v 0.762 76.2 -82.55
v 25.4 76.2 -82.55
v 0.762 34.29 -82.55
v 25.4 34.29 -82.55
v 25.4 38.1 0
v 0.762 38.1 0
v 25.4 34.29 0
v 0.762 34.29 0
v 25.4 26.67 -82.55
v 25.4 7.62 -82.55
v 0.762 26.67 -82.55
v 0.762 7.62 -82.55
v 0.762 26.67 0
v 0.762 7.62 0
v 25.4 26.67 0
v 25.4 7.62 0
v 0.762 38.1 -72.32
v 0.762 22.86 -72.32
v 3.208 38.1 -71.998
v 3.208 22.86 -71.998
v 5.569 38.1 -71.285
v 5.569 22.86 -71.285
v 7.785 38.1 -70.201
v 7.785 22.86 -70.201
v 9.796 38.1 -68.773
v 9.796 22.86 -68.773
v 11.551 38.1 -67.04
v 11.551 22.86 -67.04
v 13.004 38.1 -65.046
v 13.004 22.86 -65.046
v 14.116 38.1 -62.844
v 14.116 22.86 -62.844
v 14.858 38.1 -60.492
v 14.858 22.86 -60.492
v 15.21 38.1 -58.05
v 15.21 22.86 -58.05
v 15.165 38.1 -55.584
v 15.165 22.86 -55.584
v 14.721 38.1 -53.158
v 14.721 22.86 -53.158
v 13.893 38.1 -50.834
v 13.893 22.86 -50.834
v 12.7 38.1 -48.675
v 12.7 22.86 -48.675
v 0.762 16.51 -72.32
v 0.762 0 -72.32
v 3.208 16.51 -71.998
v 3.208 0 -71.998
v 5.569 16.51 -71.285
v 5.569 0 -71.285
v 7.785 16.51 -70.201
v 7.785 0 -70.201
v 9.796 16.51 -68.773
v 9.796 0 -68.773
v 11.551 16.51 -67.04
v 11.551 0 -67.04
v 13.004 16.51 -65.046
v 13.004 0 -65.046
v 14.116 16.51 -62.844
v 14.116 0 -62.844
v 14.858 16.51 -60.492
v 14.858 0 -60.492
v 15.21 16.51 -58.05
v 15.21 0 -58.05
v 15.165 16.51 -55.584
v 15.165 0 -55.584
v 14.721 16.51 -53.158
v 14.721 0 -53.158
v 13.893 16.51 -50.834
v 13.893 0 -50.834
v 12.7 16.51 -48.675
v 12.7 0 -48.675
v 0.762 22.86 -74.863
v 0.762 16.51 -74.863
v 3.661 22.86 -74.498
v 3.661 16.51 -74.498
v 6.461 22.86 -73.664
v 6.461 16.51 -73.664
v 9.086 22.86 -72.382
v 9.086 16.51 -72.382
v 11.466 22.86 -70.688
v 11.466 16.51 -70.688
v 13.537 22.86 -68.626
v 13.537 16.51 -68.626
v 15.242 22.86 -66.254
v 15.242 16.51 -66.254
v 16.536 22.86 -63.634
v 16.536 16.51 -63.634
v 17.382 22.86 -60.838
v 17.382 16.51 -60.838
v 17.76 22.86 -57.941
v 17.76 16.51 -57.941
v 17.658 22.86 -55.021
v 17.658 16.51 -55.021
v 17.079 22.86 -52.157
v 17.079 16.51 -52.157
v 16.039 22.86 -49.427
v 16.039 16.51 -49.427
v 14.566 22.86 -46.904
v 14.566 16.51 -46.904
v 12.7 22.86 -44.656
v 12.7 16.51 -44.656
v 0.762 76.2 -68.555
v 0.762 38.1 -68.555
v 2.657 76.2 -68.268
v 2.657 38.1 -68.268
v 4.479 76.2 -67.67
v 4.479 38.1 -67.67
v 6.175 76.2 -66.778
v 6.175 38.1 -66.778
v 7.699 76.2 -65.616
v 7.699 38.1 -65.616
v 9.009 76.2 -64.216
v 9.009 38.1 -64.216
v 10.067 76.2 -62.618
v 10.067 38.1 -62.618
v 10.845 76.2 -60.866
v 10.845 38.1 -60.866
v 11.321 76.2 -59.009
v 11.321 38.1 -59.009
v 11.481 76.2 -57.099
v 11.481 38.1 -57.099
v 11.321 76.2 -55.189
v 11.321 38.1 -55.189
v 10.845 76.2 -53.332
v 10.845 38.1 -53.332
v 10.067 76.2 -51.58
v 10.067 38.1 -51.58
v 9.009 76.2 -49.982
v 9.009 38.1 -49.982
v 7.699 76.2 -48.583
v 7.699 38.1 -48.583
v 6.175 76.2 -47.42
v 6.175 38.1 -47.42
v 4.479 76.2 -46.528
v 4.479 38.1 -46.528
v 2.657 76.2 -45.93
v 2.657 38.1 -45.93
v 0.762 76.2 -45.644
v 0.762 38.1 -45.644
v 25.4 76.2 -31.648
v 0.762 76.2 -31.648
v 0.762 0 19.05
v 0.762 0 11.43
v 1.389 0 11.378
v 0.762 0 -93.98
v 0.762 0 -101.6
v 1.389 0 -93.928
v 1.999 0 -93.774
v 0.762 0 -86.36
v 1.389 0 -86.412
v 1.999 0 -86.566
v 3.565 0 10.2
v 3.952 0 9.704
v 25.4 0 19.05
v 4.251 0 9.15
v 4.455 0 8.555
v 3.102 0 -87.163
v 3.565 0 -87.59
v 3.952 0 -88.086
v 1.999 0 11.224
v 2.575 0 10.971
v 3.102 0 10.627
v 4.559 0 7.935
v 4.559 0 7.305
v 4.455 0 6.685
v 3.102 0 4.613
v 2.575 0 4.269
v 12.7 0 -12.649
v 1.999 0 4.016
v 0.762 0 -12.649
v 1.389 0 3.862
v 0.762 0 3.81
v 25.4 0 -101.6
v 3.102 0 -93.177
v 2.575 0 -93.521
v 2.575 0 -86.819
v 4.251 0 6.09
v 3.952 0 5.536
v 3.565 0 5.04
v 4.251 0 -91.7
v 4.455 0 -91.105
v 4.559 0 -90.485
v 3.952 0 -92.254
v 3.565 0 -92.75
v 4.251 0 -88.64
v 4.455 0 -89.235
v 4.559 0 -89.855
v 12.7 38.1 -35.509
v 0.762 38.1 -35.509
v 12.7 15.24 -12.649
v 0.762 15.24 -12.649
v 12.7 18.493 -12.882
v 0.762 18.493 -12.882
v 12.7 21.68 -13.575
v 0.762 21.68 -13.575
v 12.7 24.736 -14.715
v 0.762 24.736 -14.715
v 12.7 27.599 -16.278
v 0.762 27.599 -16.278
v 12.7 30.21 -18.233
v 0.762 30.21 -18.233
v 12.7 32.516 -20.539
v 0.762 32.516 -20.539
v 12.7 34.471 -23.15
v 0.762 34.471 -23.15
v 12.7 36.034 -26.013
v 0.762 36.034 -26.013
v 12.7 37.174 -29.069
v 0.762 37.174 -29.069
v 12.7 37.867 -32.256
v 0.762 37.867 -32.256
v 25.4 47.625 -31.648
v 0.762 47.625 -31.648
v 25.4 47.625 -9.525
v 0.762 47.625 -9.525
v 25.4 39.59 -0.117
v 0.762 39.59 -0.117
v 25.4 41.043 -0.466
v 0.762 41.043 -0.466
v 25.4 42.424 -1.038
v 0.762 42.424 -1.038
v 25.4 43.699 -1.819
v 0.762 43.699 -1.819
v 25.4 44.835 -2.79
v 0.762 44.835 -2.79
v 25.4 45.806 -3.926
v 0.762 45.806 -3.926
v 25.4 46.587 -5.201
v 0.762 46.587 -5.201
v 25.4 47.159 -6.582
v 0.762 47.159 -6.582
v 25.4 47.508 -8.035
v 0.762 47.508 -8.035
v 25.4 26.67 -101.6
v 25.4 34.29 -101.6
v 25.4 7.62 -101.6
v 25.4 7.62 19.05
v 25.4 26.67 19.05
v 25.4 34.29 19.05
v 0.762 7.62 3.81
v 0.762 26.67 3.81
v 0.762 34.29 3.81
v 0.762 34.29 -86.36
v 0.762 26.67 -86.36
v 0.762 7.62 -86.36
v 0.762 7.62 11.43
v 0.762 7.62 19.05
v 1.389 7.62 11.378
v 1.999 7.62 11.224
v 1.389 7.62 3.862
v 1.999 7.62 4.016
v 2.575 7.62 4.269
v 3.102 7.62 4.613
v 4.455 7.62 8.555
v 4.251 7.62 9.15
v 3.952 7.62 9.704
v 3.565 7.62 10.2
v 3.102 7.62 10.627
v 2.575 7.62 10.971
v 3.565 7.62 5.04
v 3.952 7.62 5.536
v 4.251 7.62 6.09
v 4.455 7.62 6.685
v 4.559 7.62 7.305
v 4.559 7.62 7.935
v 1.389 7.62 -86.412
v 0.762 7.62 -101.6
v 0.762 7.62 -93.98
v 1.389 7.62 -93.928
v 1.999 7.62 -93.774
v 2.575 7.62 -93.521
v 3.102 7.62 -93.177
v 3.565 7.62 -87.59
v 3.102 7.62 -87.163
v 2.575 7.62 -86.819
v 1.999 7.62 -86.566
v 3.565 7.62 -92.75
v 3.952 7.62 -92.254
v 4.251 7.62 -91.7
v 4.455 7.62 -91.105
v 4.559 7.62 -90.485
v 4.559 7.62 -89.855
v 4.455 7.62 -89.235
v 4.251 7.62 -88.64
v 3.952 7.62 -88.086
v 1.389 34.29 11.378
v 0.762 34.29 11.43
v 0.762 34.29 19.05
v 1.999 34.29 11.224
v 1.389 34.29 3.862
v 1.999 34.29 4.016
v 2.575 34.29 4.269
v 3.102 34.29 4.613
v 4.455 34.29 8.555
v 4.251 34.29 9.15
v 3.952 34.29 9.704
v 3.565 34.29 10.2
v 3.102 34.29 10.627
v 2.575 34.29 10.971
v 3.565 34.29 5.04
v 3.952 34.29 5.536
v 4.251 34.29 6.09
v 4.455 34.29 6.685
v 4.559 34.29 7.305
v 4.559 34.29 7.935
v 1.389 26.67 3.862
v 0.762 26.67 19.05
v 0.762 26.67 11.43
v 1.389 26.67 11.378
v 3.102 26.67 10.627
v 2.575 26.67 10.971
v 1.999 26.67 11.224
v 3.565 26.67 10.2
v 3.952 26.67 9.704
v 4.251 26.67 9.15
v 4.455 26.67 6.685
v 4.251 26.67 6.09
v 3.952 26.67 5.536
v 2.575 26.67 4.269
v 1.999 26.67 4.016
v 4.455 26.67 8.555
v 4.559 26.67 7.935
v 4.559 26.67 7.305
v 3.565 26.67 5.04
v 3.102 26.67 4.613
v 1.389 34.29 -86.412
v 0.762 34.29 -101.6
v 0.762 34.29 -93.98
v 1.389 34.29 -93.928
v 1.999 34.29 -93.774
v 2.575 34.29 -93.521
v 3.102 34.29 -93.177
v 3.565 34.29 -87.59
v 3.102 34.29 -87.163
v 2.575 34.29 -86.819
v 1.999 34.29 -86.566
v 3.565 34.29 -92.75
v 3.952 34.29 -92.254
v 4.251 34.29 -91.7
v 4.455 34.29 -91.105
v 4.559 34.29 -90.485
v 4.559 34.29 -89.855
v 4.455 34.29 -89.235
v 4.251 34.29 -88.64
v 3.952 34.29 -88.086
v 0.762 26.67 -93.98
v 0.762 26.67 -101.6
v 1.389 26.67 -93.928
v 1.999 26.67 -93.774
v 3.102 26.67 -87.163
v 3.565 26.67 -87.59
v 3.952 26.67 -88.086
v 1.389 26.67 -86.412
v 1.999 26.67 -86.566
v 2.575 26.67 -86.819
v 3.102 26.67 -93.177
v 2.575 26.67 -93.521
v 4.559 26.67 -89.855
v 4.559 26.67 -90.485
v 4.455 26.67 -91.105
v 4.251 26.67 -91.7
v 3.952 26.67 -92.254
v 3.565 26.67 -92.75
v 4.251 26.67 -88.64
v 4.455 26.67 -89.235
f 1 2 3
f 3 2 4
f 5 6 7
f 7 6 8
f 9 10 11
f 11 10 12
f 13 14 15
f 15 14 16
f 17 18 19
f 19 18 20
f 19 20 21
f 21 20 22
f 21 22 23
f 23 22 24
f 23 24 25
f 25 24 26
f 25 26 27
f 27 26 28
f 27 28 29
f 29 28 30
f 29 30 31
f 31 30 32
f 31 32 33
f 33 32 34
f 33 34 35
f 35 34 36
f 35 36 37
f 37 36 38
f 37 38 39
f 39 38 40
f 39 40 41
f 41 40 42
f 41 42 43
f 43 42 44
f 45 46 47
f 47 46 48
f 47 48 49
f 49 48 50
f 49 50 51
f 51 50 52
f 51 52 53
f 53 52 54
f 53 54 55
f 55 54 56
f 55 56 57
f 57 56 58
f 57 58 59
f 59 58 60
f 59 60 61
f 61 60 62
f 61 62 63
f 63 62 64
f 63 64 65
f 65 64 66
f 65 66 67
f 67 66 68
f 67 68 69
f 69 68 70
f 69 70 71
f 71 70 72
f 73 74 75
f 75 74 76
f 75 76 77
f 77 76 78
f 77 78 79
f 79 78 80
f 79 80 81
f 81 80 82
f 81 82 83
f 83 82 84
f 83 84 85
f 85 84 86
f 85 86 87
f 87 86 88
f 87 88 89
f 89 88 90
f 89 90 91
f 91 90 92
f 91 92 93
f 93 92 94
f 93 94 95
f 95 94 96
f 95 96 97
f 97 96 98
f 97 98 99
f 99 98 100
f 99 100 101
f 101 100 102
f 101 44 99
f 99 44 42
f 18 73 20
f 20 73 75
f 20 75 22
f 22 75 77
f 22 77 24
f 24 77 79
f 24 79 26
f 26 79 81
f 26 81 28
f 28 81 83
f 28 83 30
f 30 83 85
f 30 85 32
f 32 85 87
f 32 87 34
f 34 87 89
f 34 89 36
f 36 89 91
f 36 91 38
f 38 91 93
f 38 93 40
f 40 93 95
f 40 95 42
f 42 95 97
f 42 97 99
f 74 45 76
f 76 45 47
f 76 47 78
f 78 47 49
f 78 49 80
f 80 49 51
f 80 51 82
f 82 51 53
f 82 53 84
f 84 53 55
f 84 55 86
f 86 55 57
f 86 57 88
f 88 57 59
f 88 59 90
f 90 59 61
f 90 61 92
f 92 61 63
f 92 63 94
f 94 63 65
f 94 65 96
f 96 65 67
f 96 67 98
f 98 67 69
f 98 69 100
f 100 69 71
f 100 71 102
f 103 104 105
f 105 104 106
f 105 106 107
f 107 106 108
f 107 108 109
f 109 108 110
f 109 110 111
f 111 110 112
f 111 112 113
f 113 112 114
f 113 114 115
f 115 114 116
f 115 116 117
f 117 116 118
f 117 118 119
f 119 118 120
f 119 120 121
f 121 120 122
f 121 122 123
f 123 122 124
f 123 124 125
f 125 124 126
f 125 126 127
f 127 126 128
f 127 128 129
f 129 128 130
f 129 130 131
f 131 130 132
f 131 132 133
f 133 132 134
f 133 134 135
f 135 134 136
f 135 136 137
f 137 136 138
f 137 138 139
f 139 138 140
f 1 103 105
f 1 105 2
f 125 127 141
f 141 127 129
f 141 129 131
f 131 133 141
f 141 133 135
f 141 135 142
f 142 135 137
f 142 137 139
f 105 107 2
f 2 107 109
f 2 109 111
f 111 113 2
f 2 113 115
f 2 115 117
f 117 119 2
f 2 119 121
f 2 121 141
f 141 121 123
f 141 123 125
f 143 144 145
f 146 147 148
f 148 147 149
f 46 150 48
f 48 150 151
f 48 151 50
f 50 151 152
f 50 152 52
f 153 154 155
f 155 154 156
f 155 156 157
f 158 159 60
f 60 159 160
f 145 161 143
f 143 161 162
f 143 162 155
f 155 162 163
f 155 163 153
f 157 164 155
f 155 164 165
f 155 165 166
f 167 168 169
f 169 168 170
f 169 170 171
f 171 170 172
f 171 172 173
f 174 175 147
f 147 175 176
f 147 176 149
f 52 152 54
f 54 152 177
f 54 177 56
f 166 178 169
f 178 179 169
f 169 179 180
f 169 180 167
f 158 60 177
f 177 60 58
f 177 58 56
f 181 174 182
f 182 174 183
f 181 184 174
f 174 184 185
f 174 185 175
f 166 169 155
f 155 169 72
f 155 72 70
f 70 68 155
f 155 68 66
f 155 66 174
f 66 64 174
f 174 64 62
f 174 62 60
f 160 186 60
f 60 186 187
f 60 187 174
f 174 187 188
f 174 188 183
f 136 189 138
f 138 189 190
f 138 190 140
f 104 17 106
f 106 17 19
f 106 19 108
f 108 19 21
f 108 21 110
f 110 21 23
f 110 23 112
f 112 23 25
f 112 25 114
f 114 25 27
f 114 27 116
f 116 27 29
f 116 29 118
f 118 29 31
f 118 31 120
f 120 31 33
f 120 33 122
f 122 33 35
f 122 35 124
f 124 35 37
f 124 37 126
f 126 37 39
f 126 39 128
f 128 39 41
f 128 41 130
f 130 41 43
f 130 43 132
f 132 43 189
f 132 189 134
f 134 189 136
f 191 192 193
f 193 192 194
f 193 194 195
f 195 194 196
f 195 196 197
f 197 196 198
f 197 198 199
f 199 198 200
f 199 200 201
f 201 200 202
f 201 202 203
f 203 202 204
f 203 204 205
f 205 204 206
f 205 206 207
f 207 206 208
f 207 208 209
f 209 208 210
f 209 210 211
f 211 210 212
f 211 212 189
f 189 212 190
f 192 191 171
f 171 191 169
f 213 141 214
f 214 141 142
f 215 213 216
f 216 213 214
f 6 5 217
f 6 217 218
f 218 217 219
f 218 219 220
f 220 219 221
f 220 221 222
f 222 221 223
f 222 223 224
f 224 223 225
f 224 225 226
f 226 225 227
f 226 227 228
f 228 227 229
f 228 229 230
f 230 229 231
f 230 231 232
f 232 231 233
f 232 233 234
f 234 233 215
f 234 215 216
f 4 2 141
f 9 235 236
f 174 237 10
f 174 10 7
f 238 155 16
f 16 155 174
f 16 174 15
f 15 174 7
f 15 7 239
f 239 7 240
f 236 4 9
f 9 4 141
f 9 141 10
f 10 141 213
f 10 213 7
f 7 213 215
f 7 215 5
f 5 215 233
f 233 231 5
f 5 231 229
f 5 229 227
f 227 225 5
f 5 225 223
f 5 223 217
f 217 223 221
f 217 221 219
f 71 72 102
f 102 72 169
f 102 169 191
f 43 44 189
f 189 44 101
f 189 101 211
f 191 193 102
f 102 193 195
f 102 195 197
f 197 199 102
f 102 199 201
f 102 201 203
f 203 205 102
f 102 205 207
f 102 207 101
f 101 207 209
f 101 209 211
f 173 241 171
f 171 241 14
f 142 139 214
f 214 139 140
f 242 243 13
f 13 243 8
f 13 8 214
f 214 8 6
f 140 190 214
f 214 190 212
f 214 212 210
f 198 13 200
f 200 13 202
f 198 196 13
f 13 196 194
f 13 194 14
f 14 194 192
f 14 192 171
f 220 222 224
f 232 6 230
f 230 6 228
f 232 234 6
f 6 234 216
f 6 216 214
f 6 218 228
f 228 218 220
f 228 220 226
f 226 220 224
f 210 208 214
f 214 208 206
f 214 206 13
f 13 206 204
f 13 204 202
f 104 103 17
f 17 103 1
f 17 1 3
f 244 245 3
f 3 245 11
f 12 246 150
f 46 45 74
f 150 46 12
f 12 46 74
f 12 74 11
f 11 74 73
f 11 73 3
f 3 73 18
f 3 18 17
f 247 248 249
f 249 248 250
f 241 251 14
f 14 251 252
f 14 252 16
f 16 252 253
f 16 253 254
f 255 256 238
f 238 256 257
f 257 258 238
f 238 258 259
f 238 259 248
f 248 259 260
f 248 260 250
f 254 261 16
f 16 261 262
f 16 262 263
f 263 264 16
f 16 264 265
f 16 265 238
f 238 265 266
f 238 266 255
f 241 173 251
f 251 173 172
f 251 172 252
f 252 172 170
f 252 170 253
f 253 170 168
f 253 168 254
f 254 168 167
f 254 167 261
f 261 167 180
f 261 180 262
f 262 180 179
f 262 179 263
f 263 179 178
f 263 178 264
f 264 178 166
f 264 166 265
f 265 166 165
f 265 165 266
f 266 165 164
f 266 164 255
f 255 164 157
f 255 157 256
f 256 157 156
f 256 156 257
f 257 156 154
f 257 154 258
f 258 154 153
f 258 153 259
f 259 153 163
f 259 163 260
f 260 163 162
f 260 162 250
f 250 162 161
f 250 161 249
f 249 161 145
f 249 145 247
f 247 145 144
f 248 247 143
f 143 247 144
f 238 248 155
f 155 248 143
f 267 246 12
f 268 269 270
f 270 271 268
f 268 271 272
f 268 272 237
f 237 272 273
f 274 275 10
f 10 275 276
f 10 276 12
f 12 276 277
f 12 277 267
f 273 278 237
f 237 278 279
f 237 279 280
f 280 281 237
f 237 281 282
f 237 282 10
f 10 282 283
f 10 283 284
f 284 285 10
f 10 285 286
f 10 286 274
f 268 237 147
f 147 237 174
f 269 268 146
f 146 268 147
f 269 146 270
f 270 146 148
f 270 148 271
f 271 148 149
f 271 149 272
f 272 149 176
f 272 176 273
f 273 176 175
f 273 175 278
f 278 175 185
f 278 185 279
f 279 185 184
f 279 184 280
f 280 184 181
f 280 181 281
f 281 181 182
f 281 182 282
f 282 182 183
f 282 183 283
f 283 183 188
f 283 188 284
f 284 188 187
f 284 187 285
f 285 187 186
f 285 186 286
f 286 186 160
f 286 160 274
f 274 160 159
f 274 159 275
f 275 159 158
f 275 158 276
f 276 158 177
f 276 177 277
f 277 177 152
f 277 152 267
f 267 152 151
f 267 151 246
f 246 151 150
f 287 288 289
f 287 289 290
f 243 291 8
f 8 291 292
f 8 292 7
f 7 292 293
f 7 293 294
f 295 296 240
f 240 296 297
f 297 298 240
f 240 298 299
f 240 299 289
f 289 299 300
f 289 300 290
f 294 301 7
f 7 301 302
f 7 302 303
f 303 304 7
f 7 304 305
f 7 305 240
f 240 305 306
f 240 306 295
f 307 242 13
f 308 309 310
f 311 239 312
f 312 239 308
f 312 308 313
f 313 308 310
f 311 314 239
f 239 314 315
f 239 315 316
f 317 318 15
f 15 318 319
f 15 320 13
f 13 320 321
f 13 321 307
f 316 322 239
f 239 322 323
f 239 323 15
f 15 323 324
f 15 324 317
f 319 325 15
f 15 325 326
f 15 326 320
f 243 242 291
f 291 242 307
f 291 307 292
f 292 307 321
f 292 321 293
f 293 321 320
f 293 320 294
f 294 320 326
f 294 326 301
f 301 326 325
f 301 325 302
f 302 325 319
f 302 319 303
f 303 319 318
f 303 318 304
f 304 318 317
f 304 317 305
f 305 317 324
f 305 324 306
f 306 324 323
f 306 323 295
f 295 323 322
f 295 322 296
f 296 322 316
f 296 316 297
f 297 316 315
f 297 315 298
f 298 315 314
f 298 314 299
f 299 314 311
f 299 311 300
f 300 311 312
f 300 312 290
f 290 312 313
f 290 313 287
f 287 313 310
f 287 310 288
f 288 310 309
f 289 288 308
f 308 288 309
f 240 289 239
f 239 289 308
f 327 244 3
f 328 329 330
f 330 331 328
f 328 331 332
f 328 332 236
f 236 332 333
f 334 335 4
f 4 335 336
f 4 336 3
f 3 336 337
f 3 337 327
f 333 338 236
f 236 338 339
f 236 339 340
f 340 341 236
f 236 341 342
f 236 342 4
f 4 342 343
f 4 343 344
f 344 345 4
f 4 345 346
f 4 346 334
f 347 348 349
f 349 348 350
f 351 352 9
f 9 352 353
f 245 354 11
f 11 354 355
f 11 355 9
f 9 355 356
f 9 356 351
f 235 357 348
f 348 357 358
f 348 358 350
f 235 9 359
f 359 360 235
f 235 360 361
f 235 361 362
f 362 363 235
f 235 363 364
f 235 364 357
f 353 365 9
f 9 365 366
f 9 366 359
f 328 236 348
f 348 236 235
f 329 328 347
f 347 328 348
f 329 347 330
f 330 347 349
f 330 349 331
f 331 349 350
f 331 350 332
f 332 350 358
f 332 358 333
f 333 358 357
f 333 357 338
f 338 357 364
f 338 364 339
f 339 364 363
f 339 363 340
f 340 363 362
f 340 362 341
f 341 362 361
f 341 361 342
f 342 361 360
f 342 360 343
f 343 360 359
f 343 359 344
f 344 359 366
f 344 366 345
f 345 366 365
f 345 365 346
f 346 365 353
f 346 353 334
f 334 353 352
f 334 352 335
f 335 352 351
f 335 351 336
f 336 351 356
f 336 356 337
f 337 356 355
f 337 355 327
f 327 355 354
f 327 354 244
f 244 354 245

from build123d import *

# Parameters (mm, degrees)
BOSS_EXTRUDE1_DEPTH = 76.2
SKETCH2_R           = 15.24
CUT_EXTRUDE1_DEPTH  = 38.1
SKETCH3_R           = 17.78
CUT_EXTRUDE2_DEPTH  = 6.35
CUT_EXTRUDE3_DEPTH  = 12.7
CUT_EXTRUDE4_DEPTH  = 26.4
SKETCH6_W           = 82.55
SKETCH6_H           = 76.2
CUT_EXTRUDE5_DEPTH  = 0.762
BOSS_EXTRUDE2_DEPTH = 7.62
LPATTERN1_COUNT     = 2
LPATTERN1_PITCH     = 26.67


with BuildPart() as part:
    # Sketch1 → Boss-Extrude1 (new body)
    with BuildSketch(Plane(origin=(0, 0, 0), x_dir=(1, 0, 0), z_dir=(0, 1, 0))):
        with BuildLine():
            Line((0, 0), (0, 45.6184))
            ThreePointArc((0, 45.6184), (11.4808, 57.0992), (0, 68.58))
            Line((0, 68.58), (0, 82.55))
            Line((0, 82.55), (25.4, 82.55))
            Line((25.4, 82.55), (25.4, 0))
            Line((25.4, 0), (0, 0))
        make_face()
    extrude(amount=BOSS_EXTRUDE1_DEPTH)

    # Sketch2 → Cut-Extrude1 (cut)
    with BuildSketch(Plane.XZ):
        with Locations((0, -57.0992)):
            Circle(SKETCH2_R)
    extrude(amount=-CUT_EXTRUDE1_DEPTH, mode=Mode.SUBTRACT)

    # Sketch3 → Cut-Extrude2 (cut)
    with BuildSketch(Plane(origin=(0, 16.51, 0), x_dir=(-1, 0, 0), z_dir=(0, -1, 0))):
        with Locations((0, 57.0992)):
            Circle(SKETCH3_R)
    extrude(amount=-CUT_EXTRUDE2_DEPTH, mode=Mode.SUBTRACT)

    # Sketch4 → Cut-Extrude3 (cut)
    with BuildSketch(Plane.ZY):
        with BuildLine():
            Line((-57.0992, 0), (-12.6492, 0))
            Line((-12.6492, 0), (-12.6492, 15.24))
            ThreePointArc((-12.6492, 15.24), (-19.344738982, 31.404461018), (-35.5092, 38.1))
            Line((-35.5092, 38.1), (-57.0992, 38.1))
            Line((-57.0992, 38.1), (-57.0992, 0))
        make_face()
    extrude(amount=-CUT_EXTRUDE3_DEPTH, mode=Mode.SUBTRACT)

    # Sketch5 → Cut-Extrude4 (cut, through all)
    with BuildSketch(Plane(origin=(25.4, 0, 0), x_dir=(0, 0, -1), z_dir=(1, 0, 0))):
        with BuildLine():
            Line((0, 76.2), (31.6484, 76.2))
            Line((31.6484, 76.2), (31.6484, 47.625))
            Line((31.6484, 47.625), (9.525, 47.625))
            ThreePointArc((9.525, 47.625), (2.789807909, 44.835192091), (0, 38.1))
            Line((0, 38.1), (0, 76.2))
        make_face()
    extrude(amount=-CUT_EXTRUDE4_DEPTH, mode=Mode.SUBTRACT)

    # Sketch6 → Cut-Extrude5 (cut)
    with BuildSketch(Plane.ZY):
        with Locations((-41.275, 38.1)):
            Rectangle(SKETCH6_W, SKETCH6_H)
    extrude(amount=-CUT_EXTRUDE5_DEPTH, mode=Mode.SUBTRACT)

    # Sketch9 → Boss-Extrude2 (add)
    with BuildSketch(Plane.XZ):
        with BuildLine():
            Line((0.762, -12.6492), (25.4, -12.6492))
            Line((25.4, -12.6492), (25.4, 19.05))
            Line((25.4, 19.05), (0.762, 19.05))
            Line((0.762, 19.05), (0.762, 11.43))
            ThreePointArc((0.762, 11.43), (4.572, 7.62), (0.762, 3.81))
            Line((0.762, 3.81), (0.762, -12.6492))
        make_face()
        with BuildLine():
            Line((0.762, -72.320138079), (25.4, -72.320138079))
            Line((25.4, -72.320138079), (25.4, -101.6))
            Line((25.4, -101.6), (0.762, -101.6))
            Line((0.762, -101.6), (0.762, -93.98))
            ThreePointArc((0.762, -93.98), (4.572, -90.17), (0.762, -86.36))
            Line((0.762, -86.36), (0.762, -72.320138079))
        make_face()
    boss_extrude2 = extrude(amount=-BOSS_EXTRUDE2_DEPTH)

    # LPattern1: Boss-Extrude2 ×2
    with Locations(*[(0, i * LPATTERN1_PITCH, 0) for i in range(1, LPATTERN1_COUNT)]):
        add(boss_extrude2)


solid = part.part
